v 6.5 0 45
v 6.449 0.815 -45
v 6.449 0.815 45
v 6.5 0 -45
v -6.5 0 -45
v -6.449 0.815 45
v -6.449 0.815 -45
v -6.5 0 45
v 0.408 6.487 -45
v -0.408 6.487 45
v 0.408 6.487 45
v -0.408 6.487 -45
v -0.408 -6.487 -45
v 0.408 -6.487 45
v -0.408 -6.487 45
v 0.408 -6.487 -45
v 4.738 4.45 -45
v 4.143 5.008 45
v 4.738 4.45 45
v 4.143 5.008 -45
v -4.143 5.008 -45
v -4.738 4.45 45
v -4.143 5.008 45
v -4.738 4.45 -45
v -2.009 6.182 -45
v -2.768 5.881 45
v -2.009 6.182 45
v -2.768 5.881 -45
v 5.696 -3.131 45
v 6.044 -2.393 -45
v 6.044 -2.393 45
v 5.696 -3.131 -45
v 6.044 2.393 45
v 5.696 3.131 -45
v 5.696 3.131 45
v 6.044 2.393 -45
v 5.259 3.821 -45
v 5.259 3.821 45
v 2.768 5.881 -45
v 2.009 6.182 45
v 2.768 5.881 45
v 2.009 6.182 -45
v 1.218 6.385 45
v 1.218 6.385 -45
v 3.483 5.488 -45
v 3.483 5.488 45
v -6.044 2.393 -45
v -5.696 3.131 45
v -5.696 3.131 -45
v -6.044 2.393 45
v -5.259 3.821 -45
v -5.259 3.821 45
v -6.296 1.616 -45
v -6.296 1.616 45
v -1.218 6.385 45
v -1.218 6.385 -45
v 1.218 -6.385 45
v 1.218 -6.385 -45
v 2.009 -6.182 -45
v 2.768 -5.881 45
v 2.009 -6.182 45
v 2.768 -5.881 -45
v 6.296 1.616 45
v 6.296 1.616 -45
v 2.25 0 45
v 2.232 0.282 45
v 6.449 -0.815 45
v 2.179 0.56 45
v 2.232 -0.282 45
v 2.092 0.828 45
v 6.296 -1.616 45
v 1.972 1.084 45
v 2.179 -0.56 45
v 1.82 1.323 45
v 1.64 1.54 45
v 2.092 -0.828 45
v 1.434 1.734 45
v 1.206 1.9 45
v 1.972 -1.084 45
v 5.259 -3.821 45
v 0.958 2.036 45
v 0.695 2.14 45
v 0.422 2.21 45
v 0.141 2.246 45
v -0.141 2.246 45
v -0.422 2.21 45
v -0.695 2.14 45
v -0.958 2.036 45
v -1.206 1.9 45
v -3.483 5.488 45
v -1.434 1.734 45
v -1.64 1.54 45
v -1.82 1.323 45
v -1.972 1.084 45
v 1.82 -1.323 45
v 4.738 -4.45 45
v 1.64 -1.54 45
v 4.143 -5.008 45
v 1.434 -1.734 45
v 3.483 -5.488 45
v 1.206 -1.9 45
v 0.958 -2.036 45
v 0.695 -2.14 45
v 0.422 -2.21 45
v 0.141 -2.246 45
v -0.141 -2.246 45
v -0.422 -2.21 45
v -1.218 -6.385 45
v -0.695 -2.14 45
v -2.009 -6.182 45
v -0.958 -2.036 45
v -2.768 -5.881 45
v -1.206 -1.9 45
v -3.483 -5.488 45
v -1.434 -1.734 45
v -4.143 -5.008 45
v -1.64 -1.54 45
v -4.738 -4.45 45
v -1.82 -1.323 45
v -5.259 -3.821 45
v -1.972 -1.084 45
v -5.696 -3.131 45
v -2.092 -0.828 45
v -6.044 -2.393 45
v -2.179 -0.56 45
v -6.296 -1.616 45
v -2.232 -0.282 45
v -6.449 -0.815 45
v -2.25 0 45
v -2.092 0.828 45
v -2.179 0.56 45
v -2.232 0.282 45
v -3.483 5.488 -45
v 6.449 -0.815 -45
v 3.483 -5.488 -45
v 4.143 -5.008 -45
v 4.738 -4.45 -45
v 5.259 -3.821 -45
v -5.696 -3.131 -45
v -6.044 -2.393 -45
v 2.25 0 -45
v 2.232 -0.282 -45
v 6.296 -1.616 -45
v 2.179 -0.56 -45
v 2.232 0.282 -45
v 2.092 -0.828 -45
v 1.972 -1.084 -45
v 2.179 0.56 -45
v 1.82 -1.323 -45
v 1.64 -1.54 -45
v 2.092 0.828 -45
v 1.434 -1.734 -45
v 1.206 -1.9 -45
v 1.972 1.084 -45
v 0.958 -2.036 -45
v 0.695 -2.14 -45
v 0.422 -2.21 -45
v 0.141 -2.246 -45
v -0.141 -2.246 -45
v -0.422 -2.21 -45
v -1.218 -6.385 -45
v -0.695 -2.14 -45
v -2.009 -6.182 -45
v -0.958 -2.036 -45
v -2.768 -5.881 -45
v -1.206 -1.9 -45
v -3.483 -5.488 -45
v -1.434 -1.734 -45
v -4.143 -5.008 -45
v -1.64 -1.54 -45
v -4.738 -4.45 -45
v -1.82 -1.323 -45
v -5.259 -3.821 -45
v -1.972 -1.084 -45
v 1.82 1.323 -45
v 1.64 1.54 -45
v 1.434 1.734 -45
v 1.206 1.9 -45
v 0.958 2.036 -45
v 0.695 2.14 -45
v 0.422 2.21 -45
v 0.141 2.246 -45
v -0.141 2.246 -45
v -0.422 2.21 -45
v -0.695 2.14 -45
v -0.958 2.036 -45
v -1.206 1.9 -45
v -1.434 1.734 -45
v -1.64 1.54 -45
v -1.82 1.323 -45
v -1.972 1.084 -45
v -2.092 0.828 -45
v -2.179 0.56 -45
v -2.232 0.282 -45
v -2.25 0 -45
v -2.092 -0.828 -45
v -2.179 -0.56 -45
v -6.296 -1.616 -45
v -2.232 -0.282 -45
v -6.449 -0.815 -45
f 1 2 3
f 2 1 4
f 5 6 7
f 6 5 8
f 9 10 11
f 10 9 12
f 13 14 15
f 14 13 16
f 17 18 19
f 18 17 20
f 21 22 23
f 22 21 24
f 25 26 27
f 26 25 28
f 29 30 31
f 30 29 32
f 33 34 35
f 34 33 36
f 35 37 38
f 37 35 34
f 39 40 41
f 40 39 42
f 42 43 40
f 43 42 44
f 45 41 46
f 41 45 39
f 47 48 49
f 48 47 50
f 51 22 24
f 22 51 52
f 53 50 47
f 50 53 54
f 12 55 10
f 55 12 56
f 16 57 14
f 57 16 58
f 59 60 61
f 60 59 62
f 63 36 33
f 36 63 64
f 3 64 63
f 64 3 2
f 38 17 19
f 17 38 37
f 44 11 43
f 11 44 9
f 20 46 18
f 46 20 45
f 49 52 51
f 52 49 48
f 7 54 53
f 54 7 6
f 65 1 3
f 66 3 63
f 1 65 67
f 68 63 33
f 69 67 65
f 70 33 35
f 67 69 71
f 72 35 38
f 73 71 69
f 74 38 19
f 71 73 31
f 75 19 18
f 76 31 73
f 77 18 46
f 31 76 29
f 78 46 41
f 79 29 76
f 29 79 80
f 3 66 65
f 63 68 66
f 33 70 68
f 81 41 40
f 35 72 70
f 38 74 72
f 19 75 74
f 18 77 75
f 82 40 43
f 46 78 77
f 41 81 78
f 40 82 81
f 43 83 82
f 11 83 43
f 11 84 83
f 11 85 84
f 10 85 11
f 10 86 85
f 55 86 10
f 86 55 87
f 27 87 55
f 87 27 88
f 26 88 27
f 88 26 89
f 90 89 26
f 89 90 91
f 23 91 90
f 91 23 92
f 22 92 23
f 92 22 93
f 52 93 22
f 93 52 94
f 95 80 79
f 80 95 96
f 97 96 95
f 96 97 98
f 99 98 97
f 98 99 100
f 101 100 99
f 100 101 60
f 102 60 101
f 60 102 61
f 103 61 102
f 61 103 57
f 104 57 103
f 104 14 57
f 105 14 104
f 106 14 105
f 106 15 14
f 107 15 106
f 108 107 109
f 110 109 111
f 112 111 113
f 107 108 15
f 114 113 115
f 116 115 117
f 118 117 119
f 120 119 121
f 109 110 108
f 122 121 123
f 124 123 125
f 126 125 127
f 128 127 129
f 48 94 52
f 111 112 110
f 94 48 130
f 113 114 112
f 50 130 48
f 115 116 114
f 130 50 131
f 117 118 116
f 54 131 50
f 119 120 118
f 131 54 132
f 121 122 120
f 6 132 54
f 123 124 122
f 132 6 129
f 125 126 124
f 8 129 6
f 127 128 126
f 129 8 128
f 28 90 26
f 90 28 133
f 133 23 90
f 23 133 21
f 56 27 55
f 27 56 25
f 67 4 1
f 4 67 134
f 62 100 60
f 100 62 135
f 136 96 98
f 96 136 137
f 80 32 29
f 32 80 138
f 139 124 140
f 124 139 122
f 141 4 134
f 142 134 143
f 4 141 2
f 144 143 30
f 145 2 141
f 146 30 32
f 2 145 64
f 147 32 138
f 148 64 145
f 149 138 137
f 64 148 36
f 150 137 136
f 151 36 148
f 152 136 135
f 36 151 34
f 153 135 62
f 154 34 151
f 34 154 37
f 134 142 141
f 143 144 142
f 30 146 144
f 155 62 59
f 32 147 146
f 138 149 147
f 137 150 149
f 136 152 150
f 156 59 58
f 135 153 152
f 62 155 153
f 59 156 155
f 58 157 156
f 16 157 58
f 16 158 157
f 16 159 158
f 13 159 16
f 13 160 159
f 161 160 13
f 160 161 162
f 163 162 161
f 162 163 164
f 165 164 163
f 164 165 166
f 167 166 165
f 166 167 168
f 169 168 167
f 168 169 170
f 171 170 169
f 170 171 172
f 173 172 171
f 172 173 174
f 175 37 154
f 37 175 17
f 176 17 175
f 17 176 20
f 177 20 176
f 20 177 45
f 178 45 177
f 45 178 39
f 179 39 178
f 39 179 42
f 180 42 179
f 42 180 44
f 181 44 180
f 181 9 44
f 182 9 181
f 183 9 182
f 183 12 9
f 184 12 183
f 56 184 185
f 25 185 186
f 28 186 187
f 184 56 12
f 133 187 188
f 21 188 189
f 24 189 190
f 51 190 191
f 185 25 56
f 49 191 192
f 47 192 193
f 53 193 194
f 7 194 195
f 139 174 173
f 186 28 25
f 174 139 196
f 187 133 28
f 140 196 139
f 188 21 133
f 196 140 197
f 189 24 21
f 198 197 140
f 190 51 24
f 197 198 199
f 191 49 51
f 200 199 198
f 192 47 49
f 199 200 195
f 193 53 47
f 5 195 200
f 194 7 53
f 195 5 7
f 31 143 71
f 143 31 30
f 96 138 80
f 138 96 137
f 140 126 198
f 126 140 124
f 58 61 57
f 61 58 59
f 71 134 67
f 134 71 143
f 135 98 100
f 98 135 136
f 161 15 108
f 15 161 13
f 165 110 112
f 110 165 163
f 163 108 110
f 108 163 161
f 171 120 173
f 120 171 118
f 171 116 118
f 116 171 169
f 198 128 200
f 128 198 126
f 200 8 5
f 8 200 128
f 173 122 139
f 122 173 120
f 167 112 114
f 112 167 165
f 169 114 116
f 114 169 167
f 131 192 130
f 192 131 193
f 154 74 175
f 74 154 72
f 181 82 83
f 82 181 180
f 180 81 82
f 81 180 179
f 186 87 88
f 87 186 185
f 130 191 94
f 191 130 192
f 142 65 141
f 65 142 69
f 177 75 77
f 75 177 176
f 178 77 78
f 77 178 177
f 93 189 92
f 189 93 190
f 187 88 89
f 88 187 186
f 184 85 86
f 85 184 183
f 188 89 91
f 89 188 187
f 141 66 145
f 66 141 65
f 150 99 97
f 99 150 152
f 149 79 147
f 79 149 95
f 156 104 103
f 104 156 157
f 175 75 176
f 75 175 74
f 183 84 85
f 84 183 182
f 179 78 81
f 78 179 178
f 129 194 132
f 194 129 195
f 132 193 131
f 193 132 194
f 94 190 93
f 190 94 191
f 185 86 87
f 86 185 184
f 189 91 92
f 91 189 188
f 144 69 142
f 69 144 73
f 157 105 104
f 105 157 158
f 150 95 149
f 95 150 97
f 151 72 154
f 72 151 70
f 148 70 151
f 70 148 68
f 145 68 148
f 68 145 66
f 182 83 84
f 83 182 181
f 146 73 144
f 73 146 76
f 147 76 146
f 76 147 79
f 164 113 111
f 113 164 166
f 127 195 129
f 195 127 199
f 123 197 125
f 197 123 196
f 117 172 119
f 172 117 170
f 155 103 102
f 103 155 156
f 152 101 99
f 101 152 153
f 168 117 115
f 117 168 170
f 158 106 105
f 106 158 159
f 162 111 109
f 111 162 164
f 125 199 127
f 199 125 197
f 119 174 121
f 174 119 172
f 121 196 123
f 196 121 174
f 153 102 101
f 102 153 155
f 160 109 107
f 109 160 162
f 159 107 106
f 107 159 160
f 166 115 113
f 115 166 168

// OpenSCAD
$fn = 50;


difference() {
	union() {
		translate(v = [0, 0, -45.0000000000]) {
			cylinder(h = 90, r = 6.5000000000);
		}
	}
	union() {
		translate(v = [0, 0, -100.0000000000]) {
			cylinder(h = 200, r = 2.2500000000);
		}
	}
}
